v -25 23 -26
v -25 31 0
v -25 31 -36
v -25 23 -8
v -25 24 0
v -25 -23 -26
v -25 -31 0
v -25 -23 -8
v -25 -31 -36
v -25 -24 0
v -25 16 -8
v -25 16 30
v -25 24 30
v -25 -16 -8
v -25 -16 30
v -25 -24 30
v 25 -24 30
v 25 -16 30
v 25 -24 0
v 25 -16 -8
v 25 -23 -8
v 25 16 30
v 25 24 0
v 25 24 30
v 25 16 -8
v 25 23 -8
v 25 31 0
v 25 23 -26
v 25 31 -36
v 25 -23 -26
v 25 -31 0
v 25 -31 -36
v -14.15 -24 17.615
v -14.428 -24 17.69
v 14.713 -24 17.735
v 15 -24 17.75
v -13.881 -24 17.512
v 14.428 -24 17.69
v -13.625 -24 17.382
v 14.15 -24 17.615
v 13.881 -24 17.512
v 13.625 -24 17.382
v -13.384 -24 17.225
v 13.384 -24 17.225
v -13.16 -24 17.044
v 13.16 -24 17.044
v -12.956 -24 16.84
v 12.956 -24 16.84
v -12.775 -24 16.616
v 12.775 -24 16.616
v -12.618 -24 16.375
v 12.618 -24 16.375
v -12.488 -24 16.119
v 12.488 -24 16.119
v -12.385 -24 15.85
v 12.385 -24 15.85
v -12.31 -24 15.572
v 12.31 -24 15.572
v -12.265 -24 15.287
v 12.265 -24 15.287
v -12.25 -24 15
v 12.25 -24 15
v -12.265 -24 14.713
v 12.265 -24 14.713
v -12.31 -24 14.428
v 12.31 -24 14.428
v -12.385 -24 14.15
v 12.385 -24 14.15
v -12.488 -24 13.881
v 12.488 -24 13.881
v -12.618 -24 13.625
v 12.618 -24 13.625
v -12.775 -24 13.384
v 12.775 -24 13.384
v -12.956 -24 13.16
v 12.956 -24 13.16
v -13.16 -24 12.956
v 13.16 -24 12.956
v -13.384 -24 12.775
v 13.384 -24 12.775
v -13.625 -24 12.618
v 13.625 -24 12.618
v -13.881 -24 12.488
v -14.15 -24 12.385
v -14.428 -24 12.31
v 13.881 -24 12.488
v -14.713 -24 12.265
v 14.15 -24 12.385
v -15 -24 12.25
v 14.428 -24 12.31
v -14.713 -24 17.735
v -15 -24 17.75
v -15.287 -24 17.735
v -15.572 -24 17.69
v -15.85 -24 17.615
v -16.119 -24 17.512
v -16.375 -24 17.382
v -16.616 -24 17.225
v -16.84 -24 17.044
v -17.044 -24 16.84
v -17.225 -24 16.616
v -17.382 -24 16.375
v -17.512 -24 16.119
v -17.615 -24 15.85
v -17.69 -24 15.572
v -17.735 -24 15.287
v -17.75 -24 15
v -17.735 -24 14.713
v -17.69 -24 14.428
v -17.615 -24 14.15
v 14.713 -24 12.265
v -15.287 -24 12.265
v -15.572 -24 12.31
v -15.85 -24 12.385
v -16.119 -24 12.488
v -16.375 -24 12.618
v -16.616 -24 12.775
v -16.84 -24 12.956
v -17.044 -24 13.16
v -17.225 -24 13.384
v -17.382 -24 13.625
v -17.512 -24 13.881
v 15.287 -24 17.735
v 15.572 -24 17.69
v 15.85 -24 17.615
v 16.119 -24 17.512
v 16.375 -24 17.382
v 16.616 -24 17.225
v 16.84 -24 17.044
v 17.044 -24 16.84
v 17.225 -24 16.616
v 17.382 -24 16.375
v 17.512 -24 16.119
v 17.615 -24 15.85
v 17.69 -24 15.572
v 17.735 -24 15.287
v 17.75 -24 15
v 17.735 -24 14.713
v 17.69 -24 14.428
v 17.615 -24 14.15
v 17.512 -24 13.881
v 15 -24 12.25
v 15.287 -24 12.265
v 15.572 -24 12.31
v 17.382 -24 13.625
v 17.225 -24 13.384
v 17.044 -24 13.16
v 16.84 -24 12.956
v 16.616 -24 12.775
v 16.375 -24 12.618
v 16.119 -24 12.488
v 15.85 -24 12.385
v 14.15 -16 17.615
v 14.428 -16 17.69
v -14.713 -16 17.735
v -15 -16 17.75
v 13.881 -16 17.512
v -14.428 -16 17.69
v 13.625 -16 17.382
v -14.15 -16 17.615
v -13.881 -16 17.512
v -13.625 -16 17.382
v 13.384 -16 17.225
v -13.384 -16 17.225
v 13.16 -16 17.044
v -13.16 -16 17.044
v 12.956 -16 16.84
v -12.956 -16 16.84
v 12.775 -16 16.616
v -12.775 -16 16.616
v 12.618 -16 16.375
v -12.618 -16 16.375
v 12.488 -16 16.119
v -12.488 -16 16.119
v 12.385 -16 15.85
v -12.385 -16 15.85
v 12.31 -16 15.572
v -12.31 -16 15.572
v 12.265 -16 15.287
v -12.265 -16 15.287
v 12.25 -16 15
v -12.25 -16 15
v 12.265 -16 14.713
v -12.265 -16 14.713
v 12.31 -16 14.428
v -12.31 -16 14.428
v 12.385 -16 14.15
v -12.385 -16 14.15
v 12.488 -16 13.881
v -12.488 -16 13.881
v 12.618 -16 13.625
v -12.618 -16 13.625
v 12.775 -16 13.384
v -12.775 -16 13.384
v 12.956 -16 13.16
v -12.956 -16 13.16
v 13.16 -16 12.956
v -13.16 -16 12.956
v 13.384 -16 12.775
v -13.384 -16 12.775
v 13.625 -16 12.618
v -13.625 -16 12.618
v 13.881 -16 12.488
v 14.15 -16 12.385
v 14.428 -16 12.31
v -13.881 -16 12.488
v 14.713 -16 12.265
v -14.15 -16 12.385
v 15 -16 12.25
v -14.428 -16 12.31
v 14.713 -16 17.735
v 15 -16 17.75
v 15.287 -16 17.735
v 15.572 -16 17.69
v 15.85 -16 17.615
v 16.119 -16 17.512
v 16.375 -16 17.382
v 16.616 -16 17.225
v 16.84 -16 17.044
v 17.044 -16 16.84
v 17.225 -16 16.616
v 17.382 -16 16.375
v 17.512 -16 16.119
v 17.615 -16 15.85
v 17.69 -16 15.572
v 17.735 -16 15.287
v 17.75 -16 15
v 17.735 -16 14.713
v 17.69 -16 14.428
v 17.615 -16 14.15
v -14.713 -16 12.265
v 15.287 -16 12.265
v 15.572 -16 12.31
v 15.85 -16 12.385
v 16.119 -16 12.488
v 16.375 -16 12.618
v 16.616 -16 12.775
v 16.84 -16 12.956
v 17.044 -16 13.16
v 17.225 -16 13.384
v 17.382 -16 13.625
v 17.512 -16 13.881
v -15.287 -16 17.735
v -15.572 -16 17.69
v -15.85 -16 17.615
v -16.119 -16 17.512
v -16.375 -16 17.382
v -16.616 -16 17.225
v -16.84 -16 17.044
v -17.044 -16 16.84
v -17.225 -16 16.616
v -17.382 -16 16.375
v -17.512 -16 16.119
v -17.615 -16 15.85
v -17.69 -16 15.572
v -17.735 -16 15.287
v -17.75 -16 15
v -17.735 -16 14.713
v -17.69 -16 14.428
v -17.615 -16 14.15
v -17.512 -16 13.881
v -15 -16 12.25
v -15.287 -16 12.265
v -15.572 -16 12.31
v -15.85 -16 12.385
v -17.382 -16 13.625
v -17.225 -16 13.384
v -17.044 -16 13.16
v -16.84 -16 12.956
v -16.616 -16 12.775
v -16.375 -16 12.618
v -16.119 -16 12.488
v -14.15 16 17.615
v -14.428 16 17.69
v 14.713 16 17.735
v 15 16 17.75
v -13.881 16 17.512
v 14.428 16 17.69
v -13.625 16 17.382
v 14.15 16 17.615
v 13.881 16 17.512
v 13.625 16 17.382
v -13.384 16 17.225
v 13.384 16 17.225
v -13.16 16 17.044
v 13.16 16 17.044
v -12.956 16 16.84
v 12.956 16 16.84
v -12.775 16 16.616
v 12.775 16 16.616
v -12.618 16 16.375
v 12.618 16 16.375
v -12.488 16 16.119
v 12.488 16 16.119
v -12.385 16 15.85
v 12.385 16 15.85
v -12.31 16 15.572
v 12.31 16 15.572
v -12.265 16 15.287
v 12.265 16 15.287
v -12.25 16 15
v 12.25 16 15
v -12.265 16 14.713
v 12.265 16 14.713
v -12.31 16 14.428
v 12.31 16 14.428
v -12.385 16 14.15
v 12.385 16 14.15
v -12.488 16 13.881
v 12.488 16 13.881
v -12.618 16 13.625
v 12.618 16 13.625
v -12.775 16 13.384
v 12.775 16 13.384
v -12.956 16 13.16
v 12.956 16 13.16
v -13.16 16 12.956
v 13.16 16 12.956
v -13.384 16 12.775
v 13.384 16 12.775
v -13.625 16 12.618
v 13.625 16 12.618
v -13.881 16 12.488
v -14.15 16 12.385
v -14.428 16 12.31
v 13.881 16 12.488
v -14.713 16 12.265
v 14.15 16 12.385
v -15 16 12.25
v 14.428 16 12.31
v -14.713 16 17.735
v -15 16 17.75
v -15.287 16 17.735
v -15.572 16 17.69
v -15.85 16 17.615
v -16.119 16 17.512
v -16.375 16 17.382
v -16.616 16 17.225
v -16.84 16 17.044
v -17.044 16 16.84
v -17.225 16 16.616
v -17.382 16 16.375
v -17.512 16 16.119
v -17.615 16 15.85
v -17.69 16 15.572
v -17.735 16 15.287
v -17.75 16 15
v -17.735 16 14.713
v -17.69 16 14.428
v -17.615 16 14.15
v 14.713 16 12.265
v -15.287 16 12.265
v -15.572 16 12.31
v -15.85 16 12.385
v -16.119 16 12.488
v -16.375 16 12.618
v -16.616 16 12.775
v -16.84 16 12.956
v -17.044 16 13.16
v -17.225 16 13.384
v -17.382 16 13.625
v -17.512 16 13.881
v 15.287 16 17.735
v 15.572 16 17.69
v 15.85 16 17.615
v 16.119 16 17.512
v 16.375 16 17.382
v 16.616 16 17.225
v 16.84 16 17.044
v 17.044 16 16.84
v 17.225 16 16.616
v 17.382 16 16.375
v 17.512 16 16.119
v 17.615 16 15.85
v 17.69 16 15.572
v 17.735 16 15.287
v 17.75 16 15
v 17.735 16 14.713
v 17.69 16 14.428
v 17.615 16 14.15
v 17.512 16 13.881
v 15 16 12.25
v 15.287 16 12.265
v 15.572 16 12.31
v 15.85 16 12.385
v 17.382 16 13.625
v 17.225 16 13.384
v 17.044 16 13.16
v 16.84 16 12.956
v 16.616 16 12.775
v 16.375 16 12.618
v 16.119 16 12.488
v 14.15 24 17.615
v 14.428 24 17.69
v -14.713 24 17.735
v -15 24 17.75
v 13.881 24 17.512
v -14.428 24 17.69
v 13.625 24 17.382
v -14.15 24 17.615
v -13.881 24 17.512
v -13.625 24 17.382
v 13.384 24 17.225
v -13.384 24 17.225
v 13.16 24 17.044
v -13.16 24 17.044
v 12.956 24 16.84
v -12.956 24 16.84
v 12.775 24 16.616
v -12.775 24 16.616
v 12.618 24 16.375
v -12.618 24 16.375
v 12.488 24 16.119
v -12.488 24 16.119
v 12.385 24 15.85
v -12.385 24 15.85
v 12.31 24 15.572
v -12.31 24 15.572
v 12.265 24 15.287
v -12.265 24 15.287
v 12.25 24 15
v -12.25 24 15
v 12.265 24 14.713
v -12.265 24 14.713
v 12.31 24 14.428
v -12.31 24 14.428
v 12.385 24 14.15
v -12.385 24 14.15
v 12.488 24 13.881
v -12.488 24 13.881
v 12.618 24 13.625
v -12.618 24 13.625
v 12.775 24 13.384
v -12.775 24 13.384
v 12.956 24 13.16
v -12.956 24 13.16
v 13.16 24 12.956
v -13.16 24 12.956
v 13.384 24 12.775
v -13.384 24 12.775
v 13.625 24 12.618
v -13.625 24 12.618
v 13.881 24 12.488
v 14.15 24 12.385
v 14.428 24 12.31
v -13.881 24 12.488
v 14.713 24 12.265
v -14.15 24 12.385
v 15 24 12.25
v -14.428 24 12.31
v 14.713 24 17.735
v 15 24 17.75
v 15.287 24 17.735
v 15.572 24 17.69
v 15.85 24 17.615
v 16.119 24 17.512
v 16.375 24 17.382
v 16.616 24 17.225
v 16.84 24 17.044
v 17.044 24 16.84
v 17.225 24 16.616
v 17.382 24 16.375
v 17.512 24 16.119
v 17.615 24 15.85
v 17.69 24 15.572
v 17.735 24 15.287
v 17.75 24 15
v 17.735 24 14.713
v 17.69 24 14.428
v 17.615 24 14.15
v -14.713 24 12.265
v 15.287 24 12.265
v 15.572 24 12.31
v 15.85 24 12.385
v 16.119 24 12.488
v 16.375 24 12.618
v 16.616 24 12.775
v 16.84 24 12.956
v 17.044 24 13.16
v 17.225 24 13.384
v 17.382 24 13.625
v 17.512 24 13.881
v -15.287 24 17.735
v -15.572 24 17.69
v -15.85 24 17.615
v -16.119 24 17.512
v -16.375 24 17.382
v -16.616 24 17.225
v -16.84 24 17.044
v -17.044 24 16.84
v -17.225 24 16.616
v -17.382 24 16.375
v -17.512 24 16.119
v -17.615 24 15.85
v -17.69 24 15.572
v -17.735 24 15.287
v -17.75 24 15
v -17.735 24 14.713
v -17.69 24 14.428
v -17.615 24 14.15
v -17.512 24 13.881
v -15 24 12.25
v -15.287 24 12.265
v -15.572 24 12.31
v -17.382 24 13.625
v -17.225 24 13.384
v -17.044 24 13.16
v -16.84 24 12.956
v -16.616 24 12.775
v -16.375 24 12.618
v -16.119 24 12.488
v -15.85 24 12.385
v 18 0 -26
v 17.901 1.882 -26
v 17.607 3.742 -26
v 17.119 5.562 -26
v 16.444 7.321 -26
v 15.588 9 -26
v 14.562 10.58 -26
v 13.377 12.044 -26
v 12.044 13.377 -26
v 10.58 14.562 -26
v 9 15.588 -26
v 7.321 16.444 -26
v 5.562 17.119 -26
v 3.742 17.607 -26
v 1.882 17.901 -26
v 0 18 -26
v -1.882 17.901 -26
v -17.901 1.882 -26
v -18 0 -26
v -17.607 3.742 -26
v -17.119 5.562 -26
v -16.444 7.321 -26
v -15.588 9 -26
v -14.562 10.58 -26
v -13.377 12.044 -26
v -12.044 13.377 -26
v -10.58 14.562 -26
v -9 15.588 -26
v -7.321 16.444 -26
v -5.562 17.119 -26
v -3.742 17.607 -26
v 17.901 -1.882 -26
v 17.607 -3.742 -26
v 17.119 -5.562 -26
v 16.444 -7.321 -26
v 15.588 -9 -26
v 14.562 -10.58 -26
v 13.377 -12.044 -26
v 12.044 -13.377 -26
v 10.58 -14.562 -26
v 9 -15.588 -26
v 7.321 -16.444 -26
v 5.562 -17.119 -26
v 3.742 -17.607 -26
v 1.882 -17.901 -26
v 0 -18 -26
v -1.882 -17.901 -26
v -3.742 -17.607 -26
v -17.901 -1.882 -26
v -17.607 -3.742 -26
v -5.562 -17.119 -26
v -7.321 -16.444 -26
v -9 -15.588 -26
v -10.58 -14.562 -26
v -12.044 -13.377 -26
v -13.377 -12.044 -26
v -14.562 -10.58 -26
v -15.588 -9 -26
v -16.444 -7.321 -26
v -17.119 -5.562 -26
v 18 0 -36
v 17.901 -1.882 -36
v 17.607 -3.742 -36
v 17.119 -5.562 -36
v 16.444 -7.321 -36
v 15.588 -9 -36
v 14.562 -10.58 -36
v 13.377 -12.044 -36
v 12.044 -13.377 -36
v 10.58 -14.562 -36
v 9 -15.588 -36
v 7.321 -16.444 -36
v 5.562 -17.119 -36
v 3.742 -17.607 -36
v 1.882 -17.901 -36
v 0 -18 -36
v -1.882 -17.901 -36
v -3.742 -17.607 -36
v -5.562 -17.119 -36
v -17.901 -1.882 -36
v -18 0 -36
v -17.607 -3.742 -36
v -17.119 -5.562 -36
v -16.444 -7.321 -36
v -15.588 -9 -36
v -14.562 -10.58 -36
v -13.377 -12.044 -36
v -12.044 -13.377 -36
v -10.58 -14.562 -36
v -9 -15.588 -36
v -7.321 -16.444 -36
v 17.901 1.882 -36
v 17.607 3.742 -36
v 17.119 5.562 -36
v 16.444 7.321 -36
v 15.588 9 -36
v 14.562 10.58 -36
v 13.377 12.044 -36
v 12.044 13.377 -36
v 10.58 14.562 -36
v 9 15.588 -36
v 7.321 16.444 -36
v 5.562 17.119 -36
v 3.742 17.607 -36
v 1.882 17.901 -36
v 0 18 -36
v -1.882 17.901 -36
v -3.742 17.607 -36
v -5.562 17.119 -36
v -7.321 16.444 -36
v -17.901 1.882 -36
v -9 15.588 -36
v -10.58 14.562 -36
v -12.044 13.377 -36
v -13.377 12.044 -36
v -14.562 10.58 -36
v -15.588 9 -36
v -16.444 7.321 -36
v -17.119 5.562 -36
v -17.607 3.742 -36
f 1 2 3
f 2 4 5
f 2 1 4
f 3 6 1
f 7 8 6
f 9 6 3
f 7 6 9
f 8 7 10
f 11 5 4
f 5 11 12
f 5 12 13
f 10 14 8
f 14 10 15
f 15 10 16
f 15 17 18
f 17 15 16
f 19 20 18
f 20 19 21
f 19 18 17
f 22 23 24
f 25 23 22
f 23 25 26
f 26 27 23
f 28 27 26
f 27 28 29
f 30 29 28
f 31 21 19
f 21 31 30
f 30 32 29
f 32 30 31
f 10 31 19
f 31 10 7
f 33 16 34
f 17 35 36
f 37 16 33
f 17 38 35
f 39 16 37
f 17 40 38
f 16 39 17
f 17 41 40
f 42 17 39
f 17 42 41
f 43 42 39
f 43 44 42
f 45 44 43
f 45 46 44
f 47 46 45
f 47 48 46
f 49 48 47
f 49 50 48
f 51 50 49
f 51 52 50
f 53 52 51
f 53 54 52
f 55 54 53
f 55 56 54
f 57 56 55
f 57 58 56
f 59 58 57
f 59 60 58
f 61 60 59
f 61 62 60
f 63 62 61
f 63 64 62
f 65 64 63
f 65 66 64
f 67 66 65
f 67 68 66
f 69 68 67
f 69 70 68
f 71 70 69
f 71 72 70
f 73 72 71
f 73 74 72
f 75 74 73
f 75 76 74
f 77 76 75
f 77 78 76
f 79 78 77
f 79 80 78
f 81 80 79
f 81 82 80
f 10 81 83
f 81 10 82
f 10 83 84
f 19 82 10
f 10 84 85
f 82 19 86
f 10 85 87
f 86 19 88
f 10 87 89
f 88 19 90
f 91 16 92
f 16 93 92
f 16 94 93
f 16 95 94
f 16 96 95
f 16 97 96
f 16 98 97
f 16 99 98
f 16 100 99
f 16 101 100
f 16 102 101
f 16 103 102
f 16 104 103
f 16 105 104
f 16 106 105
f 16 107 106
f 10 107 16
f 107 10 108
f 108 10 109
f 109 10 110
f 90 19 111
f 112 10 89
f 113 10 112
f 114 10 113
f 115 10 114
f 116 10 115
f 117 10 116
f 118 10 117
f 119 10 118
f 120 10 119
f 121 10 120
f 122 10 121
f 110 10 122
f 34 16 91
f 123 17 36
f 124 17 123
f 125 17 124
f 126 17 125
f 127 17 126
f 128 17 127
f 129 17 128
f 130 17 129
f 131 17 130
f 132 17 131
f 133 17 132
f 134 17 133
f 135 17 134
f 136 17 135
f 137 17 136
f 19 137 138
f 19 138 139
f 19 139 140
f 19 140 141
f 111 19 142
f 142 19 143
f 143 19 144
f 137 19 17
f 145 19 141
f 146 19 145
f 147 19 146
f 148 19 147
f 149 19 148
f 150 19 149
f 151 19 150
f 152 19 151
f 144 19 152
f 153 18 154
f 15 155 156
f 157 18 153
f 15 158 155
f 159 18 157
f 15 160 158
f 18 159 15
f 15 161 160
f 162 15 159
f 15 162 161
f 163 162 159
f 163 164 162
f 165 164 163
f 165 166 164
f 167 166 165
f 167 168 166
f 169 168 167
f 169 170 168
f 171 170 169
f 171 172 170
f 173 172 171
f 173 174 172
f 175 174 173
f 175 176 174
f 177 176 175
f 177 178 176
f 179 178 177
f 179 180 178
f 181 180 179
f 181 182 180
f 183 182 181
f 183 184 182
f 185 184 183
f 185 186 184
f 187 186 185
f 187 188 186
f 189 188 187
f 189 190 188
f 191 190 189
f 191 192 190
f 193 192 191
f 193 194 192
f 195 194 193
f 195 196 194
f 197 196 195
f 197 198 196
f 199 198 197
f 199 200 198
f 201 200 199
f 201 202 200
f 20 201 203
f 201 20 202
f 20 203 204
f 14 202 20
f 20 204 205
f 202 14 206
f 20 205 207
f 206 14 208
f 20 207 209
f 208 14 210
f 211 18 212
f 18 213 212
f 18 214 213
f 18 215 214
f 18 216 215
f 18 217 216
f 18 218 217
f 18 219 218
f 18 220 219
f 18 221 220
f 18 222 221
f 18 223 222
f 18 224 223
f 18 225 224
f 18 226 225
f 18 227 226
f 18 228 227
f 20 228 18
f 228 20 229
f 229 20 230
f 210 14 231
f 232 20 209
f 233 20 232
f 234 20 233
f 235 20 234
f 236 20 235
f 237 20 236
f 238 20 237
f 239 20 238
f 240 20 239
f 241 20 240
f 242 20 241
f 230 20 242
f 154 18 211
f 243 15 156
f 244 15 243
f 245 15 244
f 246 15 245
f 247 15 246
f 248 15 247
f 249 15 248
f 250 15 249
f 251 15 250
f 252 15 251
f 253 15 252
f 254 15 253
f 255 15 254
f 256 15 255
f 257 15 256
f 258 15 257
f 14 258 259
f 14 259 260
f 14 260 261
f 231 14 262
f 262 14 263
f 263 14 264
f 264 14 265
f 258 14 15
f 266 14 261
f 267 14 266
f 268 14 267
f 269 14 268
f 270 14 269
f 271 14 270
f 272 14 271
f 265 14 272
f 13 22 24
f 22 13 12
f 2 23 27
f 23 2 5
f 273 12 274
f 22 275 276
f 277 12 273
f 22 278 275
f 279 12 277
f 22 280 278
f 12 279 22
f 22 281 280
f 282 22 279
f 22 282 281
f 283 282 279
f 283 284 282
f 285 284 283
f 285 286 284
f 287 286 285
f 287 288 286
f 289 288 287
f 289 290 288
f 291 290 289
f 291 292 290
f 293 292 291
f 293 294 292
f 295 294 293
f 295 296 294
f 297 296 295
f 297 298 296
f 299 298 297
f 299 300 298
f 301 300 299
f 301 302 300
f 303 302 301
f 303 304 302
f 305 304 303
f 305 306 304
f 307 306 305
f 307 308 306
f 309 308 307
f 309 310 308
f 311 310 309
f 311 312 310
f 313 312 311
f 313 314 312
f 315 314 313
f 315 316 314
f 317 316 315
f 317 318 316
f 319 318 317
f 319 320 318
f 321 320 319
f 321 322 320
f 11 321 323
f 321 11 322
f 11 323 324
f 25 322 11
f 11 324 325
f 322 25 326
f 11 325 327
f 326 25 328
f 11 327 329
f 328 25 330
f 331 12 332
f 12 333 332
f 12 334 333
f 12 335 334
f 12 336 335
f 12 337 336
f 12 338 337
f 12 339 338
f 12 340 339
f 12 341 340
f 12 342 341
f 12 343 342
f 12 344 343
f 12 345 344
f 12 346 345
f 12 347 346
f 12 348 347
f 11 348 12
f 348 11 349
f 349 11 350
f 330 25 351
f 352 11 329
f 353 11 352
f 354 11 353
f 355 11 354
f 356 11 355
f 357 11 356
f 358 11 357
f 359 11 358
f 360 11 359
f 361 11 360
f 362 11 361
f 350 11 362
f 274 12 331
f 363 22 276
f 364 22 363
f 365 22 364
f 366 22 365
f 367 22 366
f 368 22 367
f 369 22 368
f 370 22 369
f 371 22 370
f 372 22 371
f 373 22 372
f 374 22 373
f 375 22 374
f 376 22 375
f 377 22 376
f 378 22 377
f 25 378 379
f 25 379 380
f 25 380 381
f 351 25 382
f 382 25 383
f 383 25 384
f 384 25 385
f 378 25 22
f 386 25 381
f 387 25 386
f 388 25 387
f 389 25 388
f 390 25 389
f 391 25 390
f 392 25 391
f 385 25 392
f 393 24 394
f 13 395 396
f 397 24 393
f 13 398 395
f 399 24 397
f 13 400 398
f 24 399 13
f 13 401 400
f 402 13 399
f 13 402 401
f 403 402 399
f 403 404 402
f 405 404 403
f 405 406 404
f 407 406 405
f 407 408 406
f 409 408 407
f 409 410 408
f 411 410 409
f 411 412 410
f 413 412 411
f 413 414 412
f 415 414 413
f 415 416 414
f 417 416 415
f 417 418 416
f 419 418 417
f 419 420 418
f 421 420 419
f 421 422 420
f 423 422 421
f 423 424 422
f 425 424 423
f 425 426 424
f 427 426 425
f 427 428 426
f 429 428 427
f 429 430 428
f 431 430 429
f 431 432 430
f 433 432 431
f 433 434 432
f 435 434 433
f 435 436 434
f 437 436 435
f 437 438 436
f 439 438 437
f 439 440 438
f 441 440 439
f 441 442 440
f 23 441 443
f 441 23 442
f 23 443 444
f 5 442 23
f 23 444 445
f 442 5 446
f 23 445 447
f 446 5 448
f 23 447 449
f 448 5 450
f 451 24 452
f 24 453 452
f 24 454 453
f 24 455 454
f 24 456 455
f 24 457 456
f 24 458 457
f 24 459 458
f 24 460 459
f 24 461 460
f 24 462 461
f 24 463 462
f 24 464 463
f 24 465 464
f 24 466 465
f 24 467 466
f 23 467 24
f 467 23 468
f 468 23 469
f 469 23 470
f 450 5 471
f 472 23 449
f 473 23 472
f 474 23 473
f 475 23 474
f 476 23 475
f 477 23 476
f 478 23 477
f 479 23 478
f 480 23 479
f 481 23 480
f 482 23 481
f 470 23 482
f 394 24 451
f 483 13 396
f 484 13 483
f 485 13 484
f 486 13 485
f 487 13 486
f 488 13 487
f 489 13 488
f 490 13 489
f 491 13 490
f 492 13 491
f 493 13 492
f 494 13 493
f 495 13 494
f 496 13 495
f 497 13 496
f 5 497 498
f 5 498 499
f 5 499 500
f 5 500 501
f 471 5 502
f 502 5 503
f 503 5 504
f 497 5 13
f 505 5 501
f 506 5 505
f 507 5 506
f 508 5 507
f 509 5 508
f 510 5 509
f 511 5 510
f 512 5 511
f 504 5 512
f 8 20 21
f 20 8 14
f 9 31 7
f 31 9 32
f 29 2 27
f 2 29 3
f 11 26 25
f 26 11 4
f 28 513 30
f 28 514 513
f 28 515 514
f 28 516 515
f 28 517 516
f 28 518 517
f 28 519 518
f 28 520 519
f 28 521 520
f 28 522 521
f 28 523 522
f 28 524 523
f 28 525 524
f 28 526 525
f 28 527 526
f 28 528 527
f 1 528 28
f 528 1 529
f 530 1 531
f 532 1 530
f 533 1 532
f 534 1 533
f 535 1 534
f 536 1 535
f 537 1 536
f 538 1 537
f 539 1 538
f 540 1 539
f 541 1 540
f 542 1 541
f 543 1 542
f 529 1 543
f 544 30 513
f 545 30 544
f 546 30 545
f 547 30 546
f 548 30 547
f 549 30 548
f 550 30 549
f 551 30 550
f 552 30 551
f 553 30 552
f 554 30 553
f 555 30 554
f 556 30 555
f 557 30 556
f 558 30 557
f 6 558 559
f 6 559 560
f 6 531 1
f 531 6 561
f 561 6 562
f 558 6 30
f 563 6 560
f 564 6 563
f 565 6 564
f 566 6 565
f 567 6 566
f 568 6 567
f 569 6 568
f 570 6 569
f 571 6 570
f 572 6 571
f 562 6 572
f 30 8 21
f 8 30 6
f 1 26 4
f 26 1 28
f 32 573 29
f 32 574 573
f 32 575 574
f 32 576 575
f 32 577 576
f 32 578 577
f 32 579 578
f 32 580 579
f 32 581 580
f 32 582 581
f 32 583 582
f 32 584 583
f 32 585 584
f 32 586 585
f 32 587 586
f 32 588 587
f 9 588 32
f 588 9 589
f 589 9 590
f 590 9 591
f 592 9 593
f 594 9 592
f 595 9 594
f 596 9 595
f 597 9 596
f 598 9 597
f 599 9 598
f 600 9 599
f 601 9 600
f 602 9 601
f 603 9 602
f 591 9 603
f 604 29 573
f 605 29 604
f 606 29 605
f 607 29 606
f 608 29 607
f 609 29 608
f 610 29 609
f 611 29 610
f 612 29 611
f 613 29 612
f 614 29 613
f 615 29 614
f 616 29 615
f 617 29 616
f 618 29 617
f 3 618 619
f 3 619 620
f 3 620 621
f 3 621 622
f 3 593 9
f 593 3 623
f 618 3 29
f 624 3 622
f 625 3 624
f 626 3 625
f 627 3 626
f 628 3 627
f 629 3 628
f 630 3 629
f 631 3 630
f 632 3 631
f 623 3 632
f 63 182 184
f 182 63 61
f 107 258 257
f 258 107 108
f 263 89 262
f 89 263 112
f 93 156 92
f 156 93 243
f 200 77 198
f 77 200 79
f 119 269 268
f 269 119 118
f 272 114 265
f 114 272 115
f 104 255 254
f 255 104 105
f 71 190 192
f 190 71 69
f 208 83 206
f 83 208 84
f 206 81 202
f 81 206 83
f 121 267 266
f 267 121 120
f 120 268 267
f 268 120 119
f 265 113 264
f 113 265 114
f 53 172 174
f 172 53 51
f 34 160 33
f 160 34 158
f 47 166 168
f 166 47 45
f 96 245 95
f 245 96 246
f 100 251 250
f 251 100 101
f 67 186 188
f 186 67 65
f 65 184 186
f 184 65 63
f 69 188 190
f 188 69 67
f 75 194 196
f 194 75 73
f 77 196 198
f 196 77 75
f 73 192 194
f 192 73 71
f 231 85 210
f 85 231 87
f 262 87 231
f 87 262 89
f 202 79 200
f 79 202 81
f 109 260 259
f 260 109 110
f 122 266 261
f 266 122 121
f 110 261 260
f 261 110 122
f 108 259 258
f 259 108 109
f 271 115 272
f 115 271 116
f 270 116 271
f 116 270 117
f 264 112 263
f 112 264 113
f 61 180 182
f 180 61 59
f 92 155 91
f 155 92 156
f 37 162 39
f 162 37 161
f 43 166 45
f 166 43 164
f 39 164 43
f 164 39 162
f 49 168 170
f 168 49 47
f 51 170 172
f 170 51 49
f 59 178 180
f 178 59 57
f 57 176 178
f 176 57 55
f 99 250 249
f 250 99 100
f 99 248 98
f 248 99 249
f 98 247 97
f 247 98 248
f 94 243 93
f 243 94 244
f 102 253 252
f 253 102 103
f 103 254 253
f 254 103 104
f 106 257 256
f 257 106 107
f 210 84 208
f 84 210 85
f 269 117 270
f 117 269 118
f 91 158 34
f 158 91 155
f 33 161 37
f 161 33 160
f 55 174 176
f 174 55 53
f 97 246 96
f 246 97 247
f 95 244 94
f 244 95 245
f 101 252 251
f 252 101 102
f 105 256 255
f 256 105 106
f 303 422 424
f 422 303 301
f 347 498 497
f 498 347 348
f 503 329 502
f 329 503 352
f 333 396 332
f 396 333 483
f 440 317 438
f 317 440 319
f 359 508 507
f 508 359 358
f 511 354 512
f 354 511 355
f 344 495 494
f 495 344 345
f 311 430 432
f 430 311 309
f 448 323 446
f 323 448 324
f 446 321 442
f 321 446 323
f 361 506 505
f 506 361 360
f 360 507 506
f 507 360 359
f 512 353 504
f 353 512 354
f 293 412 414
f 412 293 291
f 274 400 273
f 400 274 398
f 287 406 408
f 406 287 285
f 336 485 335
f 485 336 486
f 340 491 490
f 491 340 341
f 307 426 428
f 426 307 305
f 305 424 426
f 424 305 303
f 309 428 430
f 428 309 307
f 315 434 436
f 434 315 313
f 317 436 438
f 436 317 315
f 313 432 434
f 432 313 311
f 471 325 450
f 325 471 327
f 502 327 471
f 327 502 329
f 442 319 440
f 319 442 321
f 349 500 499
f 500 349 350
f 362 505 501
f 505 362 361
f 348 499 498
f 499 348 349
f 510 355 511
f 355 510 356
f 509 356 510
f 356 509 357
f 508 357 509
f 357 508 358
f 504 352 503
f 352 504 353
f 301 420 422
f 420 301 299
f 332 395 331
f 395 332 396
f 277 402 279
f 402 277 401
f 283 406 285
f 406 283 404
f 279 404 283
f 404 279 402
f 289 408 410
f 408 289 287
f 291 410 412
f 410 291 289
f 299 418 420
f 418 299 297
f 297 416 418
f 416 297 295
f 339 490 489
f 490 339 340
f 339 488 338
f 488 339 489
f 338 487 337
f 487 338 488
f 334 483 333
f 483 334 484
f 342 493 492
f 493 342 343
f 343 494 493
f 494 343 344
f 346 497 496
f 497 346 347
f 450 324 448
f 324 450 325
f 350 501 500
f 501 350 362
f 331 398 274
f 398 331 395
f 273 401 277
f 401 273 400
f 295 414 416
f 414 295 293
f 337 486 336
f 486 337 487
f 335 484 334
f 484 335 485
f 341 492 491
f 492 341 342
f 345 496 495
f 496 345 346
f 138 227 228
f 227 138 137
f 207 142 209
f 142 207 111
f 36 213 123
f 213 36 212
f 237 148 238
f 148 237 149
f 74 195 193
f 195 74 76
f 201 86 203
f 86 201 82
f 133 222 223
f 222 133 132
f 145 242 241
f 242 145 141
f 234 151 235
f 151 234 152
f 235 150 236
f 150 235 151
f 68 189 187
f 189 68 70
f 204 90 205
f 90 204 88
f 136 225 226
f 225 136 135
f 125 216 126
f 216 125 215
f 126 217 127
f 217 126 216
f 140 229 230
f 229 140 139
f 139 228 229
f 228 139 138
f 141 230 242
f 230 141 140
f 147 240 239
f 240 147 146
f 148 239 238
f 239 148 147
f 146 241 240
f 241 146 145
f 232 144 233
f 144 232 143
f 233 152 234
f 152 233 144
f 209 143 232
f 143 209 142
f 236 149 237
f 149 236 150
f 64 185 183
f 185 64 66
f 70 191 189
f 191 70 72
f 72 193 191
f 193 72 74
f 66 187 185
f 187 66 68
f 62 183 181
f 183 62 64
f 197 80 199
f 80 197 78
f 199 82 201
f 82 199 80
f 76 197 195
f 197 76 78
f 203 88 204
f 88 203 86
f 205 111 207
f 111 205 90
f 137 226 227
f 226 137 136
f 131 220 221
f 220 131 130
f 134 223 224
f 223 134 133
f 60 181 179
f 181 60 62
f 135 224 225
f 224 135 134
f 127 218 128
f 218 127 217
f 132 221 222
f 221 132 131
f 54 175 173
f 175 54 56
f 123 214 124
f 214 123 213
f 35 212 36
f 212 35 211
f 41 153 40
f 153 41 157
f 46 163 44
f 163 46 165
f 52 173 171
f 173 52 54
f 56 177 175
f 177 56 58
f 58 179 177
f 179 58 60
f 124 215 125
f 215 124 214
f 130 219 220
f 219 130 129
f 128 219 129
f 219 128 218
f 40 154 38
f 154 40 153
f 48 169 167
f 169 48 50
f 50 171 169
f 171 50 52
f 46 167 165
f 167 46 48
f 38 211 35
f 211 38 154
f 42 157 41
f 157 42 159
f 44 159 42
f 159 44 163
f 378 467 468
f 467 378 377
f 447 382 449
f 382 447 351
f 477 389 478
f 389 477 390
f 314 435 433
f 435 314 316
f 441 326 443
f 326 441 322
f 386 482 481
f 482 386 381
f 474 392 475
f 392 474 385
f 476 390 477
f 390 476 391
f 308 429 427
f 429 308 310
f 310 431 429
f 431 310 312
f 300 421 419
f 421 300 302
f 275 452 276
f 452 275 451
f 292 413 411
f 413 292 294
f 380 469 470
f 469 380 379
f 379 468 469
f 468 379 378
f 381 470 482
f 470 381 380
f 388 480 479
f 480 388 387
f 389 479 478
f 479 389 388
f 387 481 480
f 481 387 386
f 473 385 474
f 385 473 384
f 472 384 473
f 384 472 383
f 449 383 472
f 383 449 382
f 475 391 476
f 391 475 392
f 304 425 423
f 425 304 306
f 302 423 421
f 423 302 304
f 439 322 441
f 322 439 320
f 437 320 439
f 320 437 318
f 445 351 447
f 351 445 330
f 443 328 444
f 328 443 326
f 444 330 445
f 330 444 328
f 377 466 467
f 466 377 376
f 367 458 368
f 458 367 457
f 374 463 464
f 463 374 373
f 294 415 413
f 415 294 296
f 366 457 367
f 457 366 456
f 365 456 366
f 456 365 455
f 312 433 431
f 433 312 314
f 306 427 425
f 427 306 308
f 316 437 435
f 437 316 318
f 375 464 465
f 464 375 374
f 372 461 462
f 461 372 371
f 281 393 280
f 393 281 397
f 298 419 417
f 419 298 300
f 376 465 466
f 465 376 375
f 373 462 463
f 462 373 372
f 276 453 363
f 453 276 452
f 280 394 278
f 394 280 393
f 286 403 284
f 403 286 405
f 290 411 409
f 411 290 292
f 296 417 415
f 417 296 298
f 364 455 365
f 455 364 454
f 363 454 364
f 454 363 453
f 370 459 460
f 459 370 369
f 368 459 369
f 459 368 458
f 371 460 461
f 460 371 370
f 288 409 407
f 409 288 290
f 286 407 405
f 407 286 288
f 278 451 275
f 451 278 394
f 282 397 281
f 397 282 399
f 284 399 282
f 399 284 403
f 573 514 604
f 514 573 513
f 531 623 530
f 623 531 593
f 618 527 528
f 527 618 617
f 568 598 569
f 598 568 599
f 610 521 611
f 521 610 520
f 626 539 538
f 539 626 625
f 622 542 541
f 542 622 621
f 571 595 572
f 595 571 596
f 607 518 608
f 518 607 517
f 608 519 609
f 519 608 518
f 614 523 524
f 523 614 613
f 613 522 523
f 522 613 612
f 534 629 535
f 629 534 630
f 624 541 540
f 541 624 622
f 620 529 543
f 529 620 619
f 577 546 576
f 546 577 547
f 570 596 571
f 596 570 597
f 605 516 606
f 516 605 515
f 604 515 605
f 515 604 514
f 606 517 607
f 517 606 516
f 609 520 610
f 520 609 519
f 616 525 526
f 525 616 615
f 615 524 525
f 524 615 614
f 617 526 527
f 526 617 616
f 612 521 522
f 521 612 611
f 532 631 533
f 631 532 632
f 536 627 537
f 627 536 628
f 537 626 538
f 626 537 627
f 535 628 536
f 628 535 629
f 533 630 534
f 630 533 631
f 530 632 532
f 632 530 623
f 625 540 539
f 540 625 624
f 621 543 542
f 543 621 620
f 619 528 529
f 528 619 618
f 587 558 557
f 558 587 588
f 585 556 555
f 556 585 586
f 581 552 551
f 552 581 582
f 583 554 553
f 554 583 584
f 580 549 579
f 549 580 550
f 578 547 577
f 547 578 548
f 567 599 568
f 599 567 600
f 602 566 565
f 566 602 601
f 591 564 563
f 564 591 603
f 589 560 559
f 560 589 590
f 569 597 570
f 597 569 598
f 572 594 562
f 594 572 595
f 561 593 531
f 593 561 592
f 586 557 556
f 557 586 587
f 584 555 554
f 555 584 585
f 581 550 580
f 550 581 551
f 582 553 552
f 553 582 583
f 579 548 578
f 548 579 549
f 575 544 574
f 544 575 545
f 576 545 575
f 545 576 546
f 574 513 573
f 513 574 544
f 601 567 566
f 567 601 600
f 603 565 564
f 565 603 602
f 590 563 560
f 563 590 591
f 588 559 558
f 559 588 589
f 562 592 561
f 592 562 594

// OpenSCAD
// file: _params.scad
// =========================================================================
// 공유 파라미터 (모든 개별 부품 파일에서 include)
// 메인 어셈블리: cup_z_x_catrage_frame_water_mic_anti_3030.scad 에서 추출
// 프레임: 600 × 420 × 700mm (3030 프로파일, Y=0 대칭)
// =========================================================================

$fn = 60;  // 부품 출력용 고해상도
GLOBAL_TOLERANCE = 0.2;

// --- [1] 하부 기성품 및 원통 파라미터 ---
X_RAIL_LEN = 290.0;
X_BLOCK_W = 30.0; X_BLOCK_L = 32.0;   // 신규 X슬라이더 블록 (폭 30mm × 길이 32mm)
X_PITCH_X = 20.0; X_PITCH_Y = 20.0;   // 체결 홀 피치 (20 × 20mm, M3 나사탭 4개)
X_RAIL_W = 30.0;  X_RAIL_H = 20.0;   // 레일 폭 30mm (레일 바닥~블록 윗면 높이 29mm 반영)
X_TOTAL_H = 29.0;                    // 레일 바닥에서 슬라이더 블록 윗면까지의 높이

MOTOR_W = 42.0;      MOTOR_PITCH = 31.0; MOTOR_HOLE_D = 3.5;    
MOTOR_BOSS_D = 22.0; MOTOR_BOSS_H = 2.0; SCREW_D = 8.0;         
MOT_BODY_L = 41.0;   SHAFT_L = 24.0;     // 실측 NEMA17 몸통 41mm / 축 돌출 24mm

CUP_ID = 99.5;  CUP_WALL = 5.0; CUP_OD = 110.0;     // 아크릴 원통 OD110/ID100
CUP_H = 180.0;   CAGE_H = 60.0;  FLOOR_H = 10.0; PISTON_H = 20.0;     

LIP_D = 30.0;    LIP_H = 5.0;    LEAK_DRAIN_D = 4.0;    
GUIDE_PIPE_D = 8.0; BUSHING_OD = 12.0; BUSHING_H = 8.0;       
DRAIN_RADIUS = 35.0; DRAIN_D = 8.0;        

Y_OFFSET = 85.0; BRKT_H = 12.0; BRKT_D = 122.0; BRKT_ID = 62.0; Z_MOUNT_PCD = 86.0;   

// --- [2] 아크릴 파이프 및 상부 카트리지 ---
ACRYL_ID = 100.0; ACRYL_T = 5.0; ACRYL_OD = ACRYL_ID + (ACRYL_T * 2);  // OD110 (아크릴집 106 재고없음 → 컵과 동일 규격)

REVOLVER_PCD = 240.0;     // 인접 카트리지 웹 9.8mm 확보 (OD110 대응, 230→240)
CARTRIDGE_OD = REVOLVER_PCD + ACRYL_OD + 8; 
TOP_PLATE_H = 15.0;       // 아크릴 15T 통판 (보스홀 단 깊이 10mm)

HUB_D = 60.0;            
SHAFT_D = 12.0;          
HUB_WALL = 4.0;          
HUB_H = 15.0;             // 아크릴 5T × 3장 적층 — 파이프 130mm 대응
POCKET_DEPTH = 5.0;
MID_HUB_Z = 63.5;          // 중단 허브 하면 Z (벨트 중심 Z=71.0mm 정렬, 풀리 상단 Z=75.0mm = 축상단-1mm)
UPPER_HUB_Z = 135.0;       // 상단 허브 하면 Z (전체 135+15=150 유지)
BOSS_OD = 35.0;
BOSS_H = 11.0;             // 보스11 + 와셔1 = 12, 리세스10 → 허브 2mm 공중

// --- [3] GT2 벨트 구동 시스템 ---
GT2_PITCH     = 2.0;
GT2_BELT_W    = 6.0;
BIG_PULLEY_TEETH = 566;
BIG_PULLEY_PD = BIG_PULLEY_TEETH * GT2_PITCH / PI;
BIG_PULLEY_OD = BIG_PULLEY_PD + 1.0;
SMALL_PULLEY_TEETH = 20;
SMALL_PULLEY_PD = SMALL_PULLEY_TEETH * GT2_PITCH / PI;
SMALL_PULLEY_OD = SMALL_PULLEY_PD + 1.0;

BELT_MOTOR_X = -300;
BELT_MOTOR_Y = -155.5;
BRKT_MOTOR_H = 25.0;
BRKT_MOTOR_W = 45.0;        // 브래킷 폭 45mm (프로파일 간섭 회피 복원)
SLOT_LEN = 10.0;
FLAG_W = 15.0;  FLAG_H = 8.0;  FLAG_T = 1.5;

X_POS_MEASURE = 170.0;   // 측정 브래킷 X좌표 (X_M~X_R 정중앙, X대칭)

// --- [4] 3030 프레임 경계 (600×430×700mm) ---
PF = 30;             // 3030 알루미늄 프로파일
WASHER_T = 1.0;     

X_L = -320;
X_M = 60;
X_R = 250;
Y_F = -210;          // 전방 (대칭: -210+30=-180, Y=0 중심)
Y_B = 180;           // 후방 (대칭: 180+30=210, Y=0 중심) — 메인파일과 동기화

Z_BOT = -480;
Z_RAIL = -322;
Z_MID = -TOP_PLATE_H - PF;
Z_TOP = 220;

SUPPORT_PILLAR_H = Z_TOP - PF;

SHAFT_SQ = 20;       // 2020 사각 회전축

// 사각 축 홀 크기
SQ = SHAFT_SQ + GLOBAL_TOLERANCE;  // 20.2mm

// --- 리볼버/컵 축 정렬 (보스홀=판 중심에 리볼버 정렬) ---
REVOLVER_CX = (X_L + X_M + PF)/2;        // 판 중심 = 보스홀 = 리볼버 회전축 (-115)
DROP_X      = REVOLVER_CX + REVOLVER_PCD/2;  // 링 드롭 / 컵 적재 축 (+5)

FLANGE_Z = 52.0;       // 모터 전면 안착 높이 (Z=52mm -> 축 상단 Z=76mm, 풀리 결합)

// --- [5] 모터 체결홀 (이미 제작 완료된 15T 상판 원본 도면 수치 100% 유지) ---
MOTOR_BOLT_PITCH     = 25.0;      // Y피치 (Y = ±12.5mm)
MOTOR_BOLT_X_NOMINAL = X_L + 55;  // 1열: 상판 좌단 55 (모터축 기준 +35mm = X=-265mm)
MOTOR_BOLT_X_SHIFT   = X_L + 40;  // 2열: 상판 좌단 40 (모터축 기준 +20mm = X=-280mm)

// 모터 마운트 볼트 카운터보어 (단볼트용 — 브래킷 두께 25 중 깊게 파냄)
MOTOR_CB_D     = 6.5;            // M3 캡볼트 머리 클리어런스
MOTOR_CB_DEPTH = 19;             // 카운터보어 깊이 (잔여 통과 6mm → M3×10 단볼트)
// main file
// =========================================================================
// [부품] 상부 축 브래킷 (Upper Shaft Support Bracket)
// 가공: 3D 프린팅 (PLA)
// 원점: 보 상면 = Z=0, 축 중심 = XY 원점
// 특징: 1.0mm 심 와셔(Washer Shim) 삽입 조합 방식의 프레임 조립 오차 정렬 구조
// =========================================================================
include <_params.scad>

BRKT_T = 8.0;
BOTTOM_T = 10.0;
FLOAT_H = BOSS_H + WASHER_T - 10;  // 리볼버 Z 오프셋 (2mm)
UPPER_GAP = 2.0;           // 상단 허브 상면↔바닥판 하면 간격
DROP_H = (Z_TOP - PF) - (FLOAT_H + UPPER_HUB_Z + HUB_H + UPPER_GAP + BOTTOM_T);
BOSS_CLEAR = BOSS_OD + 1.0;
PLATE_W = 50.0;

// 양측 1.0mm 와셔(WASHER_T=1.0mm) 삽입용 유격 (양쪽 1.0mm씩 총 2mm 여유 → 내측 32mm 폭)
Y_CLEARANCE = WASHER_T;                // 1.0mm
INNER_Y_GAP = PF + (Y_CLEARANCE * 2);  // 32.0mm 내측 폭

HALF_GAP = BOSS_CLEAR/2 + 5;

difference() {
    union() {
        // ㅛ 상부: 좌측 탭 (프레임 전방)
        translate([-PLATE_W/2, -INNER_Y_GAP/2 - BRKT_T, 0])
            cube([PLATE_W, BRKT_T, PF]);
        // ㅛ 상부: 우측 탭 (프레임 후방)
        translate([-PLATE_W/2, INNER_Y_GAP/2, 0])
            cube([PLATE_W, BRKT_T, PF]);
        // ㅛ 연결: 좌측 수평 연결판
        translate([-PLATE_W/2, -HALF_GAP - BRKT_T, -BRKT_T])
            cube([PLATE_W, HALF_GAP + BRKT_T - INNER_Y_GAP/2, BRKT_T]);
        // ㅛ 연결: 우측 수평 연결판
        translate([-PLATE_W/2, INNER_Y_GAP/2, -BRKT_T])
            cube([PLATE_W, HALF_GAP + BRKT_T - INNER_Y_GAP/2, BRKT_T]);
        // ㅛ 하부: 좌측 벽
        translate([-PLATE_W/2, -HALF_GAP - BRKT_T, -DROP_H])
            cube([PLATE_W, BRKT_T, DROP_H - BRKT_T]);
        // ㅛ 하부: 우측 벽
        translate([-PLATE_W/2, HALF_GAP, -DROP_H])
            cube([PLATE_W, BRKT_T, DROP_H - BRKT_T]);
        // ㅛ 하부: 바닥판
        translate([-PLATE_W/2, -HALF_GAP - BRKT_T, -DROP_H - BOTTOM_T])
            cube([PLATE_W, (HALF_GAP + BRKT_T) * 2, BOTTOM_T]);
    }
    // 보스 관통홀
    translate([0, 0, -DROP_H - BOTTOM_T - 1]) cylinder(d=BOSS_CLEAR, h=BOTTOM_T + 2);
    
    // ── 프로파일 마운트 체결홀 (M5 체결용 ø5.5mm) ──
    for(dx = [-15, 15]) {
        // 전방 탭
        translate([dx, -INNER_Y_GAP/2 - BRKT_T - 1, PF/2])
            rotate([-90, 0, 0]) cylinder(d=5.5, h=BRKT_T + 2);
        // 후방 탭
        translate([dx, INNER_Y_GAP/2 - 1, PF/2])
            rotate([-90, 0, 0]) cylinder(d=5.5, h=BRKT_T + 2);
    }
}
